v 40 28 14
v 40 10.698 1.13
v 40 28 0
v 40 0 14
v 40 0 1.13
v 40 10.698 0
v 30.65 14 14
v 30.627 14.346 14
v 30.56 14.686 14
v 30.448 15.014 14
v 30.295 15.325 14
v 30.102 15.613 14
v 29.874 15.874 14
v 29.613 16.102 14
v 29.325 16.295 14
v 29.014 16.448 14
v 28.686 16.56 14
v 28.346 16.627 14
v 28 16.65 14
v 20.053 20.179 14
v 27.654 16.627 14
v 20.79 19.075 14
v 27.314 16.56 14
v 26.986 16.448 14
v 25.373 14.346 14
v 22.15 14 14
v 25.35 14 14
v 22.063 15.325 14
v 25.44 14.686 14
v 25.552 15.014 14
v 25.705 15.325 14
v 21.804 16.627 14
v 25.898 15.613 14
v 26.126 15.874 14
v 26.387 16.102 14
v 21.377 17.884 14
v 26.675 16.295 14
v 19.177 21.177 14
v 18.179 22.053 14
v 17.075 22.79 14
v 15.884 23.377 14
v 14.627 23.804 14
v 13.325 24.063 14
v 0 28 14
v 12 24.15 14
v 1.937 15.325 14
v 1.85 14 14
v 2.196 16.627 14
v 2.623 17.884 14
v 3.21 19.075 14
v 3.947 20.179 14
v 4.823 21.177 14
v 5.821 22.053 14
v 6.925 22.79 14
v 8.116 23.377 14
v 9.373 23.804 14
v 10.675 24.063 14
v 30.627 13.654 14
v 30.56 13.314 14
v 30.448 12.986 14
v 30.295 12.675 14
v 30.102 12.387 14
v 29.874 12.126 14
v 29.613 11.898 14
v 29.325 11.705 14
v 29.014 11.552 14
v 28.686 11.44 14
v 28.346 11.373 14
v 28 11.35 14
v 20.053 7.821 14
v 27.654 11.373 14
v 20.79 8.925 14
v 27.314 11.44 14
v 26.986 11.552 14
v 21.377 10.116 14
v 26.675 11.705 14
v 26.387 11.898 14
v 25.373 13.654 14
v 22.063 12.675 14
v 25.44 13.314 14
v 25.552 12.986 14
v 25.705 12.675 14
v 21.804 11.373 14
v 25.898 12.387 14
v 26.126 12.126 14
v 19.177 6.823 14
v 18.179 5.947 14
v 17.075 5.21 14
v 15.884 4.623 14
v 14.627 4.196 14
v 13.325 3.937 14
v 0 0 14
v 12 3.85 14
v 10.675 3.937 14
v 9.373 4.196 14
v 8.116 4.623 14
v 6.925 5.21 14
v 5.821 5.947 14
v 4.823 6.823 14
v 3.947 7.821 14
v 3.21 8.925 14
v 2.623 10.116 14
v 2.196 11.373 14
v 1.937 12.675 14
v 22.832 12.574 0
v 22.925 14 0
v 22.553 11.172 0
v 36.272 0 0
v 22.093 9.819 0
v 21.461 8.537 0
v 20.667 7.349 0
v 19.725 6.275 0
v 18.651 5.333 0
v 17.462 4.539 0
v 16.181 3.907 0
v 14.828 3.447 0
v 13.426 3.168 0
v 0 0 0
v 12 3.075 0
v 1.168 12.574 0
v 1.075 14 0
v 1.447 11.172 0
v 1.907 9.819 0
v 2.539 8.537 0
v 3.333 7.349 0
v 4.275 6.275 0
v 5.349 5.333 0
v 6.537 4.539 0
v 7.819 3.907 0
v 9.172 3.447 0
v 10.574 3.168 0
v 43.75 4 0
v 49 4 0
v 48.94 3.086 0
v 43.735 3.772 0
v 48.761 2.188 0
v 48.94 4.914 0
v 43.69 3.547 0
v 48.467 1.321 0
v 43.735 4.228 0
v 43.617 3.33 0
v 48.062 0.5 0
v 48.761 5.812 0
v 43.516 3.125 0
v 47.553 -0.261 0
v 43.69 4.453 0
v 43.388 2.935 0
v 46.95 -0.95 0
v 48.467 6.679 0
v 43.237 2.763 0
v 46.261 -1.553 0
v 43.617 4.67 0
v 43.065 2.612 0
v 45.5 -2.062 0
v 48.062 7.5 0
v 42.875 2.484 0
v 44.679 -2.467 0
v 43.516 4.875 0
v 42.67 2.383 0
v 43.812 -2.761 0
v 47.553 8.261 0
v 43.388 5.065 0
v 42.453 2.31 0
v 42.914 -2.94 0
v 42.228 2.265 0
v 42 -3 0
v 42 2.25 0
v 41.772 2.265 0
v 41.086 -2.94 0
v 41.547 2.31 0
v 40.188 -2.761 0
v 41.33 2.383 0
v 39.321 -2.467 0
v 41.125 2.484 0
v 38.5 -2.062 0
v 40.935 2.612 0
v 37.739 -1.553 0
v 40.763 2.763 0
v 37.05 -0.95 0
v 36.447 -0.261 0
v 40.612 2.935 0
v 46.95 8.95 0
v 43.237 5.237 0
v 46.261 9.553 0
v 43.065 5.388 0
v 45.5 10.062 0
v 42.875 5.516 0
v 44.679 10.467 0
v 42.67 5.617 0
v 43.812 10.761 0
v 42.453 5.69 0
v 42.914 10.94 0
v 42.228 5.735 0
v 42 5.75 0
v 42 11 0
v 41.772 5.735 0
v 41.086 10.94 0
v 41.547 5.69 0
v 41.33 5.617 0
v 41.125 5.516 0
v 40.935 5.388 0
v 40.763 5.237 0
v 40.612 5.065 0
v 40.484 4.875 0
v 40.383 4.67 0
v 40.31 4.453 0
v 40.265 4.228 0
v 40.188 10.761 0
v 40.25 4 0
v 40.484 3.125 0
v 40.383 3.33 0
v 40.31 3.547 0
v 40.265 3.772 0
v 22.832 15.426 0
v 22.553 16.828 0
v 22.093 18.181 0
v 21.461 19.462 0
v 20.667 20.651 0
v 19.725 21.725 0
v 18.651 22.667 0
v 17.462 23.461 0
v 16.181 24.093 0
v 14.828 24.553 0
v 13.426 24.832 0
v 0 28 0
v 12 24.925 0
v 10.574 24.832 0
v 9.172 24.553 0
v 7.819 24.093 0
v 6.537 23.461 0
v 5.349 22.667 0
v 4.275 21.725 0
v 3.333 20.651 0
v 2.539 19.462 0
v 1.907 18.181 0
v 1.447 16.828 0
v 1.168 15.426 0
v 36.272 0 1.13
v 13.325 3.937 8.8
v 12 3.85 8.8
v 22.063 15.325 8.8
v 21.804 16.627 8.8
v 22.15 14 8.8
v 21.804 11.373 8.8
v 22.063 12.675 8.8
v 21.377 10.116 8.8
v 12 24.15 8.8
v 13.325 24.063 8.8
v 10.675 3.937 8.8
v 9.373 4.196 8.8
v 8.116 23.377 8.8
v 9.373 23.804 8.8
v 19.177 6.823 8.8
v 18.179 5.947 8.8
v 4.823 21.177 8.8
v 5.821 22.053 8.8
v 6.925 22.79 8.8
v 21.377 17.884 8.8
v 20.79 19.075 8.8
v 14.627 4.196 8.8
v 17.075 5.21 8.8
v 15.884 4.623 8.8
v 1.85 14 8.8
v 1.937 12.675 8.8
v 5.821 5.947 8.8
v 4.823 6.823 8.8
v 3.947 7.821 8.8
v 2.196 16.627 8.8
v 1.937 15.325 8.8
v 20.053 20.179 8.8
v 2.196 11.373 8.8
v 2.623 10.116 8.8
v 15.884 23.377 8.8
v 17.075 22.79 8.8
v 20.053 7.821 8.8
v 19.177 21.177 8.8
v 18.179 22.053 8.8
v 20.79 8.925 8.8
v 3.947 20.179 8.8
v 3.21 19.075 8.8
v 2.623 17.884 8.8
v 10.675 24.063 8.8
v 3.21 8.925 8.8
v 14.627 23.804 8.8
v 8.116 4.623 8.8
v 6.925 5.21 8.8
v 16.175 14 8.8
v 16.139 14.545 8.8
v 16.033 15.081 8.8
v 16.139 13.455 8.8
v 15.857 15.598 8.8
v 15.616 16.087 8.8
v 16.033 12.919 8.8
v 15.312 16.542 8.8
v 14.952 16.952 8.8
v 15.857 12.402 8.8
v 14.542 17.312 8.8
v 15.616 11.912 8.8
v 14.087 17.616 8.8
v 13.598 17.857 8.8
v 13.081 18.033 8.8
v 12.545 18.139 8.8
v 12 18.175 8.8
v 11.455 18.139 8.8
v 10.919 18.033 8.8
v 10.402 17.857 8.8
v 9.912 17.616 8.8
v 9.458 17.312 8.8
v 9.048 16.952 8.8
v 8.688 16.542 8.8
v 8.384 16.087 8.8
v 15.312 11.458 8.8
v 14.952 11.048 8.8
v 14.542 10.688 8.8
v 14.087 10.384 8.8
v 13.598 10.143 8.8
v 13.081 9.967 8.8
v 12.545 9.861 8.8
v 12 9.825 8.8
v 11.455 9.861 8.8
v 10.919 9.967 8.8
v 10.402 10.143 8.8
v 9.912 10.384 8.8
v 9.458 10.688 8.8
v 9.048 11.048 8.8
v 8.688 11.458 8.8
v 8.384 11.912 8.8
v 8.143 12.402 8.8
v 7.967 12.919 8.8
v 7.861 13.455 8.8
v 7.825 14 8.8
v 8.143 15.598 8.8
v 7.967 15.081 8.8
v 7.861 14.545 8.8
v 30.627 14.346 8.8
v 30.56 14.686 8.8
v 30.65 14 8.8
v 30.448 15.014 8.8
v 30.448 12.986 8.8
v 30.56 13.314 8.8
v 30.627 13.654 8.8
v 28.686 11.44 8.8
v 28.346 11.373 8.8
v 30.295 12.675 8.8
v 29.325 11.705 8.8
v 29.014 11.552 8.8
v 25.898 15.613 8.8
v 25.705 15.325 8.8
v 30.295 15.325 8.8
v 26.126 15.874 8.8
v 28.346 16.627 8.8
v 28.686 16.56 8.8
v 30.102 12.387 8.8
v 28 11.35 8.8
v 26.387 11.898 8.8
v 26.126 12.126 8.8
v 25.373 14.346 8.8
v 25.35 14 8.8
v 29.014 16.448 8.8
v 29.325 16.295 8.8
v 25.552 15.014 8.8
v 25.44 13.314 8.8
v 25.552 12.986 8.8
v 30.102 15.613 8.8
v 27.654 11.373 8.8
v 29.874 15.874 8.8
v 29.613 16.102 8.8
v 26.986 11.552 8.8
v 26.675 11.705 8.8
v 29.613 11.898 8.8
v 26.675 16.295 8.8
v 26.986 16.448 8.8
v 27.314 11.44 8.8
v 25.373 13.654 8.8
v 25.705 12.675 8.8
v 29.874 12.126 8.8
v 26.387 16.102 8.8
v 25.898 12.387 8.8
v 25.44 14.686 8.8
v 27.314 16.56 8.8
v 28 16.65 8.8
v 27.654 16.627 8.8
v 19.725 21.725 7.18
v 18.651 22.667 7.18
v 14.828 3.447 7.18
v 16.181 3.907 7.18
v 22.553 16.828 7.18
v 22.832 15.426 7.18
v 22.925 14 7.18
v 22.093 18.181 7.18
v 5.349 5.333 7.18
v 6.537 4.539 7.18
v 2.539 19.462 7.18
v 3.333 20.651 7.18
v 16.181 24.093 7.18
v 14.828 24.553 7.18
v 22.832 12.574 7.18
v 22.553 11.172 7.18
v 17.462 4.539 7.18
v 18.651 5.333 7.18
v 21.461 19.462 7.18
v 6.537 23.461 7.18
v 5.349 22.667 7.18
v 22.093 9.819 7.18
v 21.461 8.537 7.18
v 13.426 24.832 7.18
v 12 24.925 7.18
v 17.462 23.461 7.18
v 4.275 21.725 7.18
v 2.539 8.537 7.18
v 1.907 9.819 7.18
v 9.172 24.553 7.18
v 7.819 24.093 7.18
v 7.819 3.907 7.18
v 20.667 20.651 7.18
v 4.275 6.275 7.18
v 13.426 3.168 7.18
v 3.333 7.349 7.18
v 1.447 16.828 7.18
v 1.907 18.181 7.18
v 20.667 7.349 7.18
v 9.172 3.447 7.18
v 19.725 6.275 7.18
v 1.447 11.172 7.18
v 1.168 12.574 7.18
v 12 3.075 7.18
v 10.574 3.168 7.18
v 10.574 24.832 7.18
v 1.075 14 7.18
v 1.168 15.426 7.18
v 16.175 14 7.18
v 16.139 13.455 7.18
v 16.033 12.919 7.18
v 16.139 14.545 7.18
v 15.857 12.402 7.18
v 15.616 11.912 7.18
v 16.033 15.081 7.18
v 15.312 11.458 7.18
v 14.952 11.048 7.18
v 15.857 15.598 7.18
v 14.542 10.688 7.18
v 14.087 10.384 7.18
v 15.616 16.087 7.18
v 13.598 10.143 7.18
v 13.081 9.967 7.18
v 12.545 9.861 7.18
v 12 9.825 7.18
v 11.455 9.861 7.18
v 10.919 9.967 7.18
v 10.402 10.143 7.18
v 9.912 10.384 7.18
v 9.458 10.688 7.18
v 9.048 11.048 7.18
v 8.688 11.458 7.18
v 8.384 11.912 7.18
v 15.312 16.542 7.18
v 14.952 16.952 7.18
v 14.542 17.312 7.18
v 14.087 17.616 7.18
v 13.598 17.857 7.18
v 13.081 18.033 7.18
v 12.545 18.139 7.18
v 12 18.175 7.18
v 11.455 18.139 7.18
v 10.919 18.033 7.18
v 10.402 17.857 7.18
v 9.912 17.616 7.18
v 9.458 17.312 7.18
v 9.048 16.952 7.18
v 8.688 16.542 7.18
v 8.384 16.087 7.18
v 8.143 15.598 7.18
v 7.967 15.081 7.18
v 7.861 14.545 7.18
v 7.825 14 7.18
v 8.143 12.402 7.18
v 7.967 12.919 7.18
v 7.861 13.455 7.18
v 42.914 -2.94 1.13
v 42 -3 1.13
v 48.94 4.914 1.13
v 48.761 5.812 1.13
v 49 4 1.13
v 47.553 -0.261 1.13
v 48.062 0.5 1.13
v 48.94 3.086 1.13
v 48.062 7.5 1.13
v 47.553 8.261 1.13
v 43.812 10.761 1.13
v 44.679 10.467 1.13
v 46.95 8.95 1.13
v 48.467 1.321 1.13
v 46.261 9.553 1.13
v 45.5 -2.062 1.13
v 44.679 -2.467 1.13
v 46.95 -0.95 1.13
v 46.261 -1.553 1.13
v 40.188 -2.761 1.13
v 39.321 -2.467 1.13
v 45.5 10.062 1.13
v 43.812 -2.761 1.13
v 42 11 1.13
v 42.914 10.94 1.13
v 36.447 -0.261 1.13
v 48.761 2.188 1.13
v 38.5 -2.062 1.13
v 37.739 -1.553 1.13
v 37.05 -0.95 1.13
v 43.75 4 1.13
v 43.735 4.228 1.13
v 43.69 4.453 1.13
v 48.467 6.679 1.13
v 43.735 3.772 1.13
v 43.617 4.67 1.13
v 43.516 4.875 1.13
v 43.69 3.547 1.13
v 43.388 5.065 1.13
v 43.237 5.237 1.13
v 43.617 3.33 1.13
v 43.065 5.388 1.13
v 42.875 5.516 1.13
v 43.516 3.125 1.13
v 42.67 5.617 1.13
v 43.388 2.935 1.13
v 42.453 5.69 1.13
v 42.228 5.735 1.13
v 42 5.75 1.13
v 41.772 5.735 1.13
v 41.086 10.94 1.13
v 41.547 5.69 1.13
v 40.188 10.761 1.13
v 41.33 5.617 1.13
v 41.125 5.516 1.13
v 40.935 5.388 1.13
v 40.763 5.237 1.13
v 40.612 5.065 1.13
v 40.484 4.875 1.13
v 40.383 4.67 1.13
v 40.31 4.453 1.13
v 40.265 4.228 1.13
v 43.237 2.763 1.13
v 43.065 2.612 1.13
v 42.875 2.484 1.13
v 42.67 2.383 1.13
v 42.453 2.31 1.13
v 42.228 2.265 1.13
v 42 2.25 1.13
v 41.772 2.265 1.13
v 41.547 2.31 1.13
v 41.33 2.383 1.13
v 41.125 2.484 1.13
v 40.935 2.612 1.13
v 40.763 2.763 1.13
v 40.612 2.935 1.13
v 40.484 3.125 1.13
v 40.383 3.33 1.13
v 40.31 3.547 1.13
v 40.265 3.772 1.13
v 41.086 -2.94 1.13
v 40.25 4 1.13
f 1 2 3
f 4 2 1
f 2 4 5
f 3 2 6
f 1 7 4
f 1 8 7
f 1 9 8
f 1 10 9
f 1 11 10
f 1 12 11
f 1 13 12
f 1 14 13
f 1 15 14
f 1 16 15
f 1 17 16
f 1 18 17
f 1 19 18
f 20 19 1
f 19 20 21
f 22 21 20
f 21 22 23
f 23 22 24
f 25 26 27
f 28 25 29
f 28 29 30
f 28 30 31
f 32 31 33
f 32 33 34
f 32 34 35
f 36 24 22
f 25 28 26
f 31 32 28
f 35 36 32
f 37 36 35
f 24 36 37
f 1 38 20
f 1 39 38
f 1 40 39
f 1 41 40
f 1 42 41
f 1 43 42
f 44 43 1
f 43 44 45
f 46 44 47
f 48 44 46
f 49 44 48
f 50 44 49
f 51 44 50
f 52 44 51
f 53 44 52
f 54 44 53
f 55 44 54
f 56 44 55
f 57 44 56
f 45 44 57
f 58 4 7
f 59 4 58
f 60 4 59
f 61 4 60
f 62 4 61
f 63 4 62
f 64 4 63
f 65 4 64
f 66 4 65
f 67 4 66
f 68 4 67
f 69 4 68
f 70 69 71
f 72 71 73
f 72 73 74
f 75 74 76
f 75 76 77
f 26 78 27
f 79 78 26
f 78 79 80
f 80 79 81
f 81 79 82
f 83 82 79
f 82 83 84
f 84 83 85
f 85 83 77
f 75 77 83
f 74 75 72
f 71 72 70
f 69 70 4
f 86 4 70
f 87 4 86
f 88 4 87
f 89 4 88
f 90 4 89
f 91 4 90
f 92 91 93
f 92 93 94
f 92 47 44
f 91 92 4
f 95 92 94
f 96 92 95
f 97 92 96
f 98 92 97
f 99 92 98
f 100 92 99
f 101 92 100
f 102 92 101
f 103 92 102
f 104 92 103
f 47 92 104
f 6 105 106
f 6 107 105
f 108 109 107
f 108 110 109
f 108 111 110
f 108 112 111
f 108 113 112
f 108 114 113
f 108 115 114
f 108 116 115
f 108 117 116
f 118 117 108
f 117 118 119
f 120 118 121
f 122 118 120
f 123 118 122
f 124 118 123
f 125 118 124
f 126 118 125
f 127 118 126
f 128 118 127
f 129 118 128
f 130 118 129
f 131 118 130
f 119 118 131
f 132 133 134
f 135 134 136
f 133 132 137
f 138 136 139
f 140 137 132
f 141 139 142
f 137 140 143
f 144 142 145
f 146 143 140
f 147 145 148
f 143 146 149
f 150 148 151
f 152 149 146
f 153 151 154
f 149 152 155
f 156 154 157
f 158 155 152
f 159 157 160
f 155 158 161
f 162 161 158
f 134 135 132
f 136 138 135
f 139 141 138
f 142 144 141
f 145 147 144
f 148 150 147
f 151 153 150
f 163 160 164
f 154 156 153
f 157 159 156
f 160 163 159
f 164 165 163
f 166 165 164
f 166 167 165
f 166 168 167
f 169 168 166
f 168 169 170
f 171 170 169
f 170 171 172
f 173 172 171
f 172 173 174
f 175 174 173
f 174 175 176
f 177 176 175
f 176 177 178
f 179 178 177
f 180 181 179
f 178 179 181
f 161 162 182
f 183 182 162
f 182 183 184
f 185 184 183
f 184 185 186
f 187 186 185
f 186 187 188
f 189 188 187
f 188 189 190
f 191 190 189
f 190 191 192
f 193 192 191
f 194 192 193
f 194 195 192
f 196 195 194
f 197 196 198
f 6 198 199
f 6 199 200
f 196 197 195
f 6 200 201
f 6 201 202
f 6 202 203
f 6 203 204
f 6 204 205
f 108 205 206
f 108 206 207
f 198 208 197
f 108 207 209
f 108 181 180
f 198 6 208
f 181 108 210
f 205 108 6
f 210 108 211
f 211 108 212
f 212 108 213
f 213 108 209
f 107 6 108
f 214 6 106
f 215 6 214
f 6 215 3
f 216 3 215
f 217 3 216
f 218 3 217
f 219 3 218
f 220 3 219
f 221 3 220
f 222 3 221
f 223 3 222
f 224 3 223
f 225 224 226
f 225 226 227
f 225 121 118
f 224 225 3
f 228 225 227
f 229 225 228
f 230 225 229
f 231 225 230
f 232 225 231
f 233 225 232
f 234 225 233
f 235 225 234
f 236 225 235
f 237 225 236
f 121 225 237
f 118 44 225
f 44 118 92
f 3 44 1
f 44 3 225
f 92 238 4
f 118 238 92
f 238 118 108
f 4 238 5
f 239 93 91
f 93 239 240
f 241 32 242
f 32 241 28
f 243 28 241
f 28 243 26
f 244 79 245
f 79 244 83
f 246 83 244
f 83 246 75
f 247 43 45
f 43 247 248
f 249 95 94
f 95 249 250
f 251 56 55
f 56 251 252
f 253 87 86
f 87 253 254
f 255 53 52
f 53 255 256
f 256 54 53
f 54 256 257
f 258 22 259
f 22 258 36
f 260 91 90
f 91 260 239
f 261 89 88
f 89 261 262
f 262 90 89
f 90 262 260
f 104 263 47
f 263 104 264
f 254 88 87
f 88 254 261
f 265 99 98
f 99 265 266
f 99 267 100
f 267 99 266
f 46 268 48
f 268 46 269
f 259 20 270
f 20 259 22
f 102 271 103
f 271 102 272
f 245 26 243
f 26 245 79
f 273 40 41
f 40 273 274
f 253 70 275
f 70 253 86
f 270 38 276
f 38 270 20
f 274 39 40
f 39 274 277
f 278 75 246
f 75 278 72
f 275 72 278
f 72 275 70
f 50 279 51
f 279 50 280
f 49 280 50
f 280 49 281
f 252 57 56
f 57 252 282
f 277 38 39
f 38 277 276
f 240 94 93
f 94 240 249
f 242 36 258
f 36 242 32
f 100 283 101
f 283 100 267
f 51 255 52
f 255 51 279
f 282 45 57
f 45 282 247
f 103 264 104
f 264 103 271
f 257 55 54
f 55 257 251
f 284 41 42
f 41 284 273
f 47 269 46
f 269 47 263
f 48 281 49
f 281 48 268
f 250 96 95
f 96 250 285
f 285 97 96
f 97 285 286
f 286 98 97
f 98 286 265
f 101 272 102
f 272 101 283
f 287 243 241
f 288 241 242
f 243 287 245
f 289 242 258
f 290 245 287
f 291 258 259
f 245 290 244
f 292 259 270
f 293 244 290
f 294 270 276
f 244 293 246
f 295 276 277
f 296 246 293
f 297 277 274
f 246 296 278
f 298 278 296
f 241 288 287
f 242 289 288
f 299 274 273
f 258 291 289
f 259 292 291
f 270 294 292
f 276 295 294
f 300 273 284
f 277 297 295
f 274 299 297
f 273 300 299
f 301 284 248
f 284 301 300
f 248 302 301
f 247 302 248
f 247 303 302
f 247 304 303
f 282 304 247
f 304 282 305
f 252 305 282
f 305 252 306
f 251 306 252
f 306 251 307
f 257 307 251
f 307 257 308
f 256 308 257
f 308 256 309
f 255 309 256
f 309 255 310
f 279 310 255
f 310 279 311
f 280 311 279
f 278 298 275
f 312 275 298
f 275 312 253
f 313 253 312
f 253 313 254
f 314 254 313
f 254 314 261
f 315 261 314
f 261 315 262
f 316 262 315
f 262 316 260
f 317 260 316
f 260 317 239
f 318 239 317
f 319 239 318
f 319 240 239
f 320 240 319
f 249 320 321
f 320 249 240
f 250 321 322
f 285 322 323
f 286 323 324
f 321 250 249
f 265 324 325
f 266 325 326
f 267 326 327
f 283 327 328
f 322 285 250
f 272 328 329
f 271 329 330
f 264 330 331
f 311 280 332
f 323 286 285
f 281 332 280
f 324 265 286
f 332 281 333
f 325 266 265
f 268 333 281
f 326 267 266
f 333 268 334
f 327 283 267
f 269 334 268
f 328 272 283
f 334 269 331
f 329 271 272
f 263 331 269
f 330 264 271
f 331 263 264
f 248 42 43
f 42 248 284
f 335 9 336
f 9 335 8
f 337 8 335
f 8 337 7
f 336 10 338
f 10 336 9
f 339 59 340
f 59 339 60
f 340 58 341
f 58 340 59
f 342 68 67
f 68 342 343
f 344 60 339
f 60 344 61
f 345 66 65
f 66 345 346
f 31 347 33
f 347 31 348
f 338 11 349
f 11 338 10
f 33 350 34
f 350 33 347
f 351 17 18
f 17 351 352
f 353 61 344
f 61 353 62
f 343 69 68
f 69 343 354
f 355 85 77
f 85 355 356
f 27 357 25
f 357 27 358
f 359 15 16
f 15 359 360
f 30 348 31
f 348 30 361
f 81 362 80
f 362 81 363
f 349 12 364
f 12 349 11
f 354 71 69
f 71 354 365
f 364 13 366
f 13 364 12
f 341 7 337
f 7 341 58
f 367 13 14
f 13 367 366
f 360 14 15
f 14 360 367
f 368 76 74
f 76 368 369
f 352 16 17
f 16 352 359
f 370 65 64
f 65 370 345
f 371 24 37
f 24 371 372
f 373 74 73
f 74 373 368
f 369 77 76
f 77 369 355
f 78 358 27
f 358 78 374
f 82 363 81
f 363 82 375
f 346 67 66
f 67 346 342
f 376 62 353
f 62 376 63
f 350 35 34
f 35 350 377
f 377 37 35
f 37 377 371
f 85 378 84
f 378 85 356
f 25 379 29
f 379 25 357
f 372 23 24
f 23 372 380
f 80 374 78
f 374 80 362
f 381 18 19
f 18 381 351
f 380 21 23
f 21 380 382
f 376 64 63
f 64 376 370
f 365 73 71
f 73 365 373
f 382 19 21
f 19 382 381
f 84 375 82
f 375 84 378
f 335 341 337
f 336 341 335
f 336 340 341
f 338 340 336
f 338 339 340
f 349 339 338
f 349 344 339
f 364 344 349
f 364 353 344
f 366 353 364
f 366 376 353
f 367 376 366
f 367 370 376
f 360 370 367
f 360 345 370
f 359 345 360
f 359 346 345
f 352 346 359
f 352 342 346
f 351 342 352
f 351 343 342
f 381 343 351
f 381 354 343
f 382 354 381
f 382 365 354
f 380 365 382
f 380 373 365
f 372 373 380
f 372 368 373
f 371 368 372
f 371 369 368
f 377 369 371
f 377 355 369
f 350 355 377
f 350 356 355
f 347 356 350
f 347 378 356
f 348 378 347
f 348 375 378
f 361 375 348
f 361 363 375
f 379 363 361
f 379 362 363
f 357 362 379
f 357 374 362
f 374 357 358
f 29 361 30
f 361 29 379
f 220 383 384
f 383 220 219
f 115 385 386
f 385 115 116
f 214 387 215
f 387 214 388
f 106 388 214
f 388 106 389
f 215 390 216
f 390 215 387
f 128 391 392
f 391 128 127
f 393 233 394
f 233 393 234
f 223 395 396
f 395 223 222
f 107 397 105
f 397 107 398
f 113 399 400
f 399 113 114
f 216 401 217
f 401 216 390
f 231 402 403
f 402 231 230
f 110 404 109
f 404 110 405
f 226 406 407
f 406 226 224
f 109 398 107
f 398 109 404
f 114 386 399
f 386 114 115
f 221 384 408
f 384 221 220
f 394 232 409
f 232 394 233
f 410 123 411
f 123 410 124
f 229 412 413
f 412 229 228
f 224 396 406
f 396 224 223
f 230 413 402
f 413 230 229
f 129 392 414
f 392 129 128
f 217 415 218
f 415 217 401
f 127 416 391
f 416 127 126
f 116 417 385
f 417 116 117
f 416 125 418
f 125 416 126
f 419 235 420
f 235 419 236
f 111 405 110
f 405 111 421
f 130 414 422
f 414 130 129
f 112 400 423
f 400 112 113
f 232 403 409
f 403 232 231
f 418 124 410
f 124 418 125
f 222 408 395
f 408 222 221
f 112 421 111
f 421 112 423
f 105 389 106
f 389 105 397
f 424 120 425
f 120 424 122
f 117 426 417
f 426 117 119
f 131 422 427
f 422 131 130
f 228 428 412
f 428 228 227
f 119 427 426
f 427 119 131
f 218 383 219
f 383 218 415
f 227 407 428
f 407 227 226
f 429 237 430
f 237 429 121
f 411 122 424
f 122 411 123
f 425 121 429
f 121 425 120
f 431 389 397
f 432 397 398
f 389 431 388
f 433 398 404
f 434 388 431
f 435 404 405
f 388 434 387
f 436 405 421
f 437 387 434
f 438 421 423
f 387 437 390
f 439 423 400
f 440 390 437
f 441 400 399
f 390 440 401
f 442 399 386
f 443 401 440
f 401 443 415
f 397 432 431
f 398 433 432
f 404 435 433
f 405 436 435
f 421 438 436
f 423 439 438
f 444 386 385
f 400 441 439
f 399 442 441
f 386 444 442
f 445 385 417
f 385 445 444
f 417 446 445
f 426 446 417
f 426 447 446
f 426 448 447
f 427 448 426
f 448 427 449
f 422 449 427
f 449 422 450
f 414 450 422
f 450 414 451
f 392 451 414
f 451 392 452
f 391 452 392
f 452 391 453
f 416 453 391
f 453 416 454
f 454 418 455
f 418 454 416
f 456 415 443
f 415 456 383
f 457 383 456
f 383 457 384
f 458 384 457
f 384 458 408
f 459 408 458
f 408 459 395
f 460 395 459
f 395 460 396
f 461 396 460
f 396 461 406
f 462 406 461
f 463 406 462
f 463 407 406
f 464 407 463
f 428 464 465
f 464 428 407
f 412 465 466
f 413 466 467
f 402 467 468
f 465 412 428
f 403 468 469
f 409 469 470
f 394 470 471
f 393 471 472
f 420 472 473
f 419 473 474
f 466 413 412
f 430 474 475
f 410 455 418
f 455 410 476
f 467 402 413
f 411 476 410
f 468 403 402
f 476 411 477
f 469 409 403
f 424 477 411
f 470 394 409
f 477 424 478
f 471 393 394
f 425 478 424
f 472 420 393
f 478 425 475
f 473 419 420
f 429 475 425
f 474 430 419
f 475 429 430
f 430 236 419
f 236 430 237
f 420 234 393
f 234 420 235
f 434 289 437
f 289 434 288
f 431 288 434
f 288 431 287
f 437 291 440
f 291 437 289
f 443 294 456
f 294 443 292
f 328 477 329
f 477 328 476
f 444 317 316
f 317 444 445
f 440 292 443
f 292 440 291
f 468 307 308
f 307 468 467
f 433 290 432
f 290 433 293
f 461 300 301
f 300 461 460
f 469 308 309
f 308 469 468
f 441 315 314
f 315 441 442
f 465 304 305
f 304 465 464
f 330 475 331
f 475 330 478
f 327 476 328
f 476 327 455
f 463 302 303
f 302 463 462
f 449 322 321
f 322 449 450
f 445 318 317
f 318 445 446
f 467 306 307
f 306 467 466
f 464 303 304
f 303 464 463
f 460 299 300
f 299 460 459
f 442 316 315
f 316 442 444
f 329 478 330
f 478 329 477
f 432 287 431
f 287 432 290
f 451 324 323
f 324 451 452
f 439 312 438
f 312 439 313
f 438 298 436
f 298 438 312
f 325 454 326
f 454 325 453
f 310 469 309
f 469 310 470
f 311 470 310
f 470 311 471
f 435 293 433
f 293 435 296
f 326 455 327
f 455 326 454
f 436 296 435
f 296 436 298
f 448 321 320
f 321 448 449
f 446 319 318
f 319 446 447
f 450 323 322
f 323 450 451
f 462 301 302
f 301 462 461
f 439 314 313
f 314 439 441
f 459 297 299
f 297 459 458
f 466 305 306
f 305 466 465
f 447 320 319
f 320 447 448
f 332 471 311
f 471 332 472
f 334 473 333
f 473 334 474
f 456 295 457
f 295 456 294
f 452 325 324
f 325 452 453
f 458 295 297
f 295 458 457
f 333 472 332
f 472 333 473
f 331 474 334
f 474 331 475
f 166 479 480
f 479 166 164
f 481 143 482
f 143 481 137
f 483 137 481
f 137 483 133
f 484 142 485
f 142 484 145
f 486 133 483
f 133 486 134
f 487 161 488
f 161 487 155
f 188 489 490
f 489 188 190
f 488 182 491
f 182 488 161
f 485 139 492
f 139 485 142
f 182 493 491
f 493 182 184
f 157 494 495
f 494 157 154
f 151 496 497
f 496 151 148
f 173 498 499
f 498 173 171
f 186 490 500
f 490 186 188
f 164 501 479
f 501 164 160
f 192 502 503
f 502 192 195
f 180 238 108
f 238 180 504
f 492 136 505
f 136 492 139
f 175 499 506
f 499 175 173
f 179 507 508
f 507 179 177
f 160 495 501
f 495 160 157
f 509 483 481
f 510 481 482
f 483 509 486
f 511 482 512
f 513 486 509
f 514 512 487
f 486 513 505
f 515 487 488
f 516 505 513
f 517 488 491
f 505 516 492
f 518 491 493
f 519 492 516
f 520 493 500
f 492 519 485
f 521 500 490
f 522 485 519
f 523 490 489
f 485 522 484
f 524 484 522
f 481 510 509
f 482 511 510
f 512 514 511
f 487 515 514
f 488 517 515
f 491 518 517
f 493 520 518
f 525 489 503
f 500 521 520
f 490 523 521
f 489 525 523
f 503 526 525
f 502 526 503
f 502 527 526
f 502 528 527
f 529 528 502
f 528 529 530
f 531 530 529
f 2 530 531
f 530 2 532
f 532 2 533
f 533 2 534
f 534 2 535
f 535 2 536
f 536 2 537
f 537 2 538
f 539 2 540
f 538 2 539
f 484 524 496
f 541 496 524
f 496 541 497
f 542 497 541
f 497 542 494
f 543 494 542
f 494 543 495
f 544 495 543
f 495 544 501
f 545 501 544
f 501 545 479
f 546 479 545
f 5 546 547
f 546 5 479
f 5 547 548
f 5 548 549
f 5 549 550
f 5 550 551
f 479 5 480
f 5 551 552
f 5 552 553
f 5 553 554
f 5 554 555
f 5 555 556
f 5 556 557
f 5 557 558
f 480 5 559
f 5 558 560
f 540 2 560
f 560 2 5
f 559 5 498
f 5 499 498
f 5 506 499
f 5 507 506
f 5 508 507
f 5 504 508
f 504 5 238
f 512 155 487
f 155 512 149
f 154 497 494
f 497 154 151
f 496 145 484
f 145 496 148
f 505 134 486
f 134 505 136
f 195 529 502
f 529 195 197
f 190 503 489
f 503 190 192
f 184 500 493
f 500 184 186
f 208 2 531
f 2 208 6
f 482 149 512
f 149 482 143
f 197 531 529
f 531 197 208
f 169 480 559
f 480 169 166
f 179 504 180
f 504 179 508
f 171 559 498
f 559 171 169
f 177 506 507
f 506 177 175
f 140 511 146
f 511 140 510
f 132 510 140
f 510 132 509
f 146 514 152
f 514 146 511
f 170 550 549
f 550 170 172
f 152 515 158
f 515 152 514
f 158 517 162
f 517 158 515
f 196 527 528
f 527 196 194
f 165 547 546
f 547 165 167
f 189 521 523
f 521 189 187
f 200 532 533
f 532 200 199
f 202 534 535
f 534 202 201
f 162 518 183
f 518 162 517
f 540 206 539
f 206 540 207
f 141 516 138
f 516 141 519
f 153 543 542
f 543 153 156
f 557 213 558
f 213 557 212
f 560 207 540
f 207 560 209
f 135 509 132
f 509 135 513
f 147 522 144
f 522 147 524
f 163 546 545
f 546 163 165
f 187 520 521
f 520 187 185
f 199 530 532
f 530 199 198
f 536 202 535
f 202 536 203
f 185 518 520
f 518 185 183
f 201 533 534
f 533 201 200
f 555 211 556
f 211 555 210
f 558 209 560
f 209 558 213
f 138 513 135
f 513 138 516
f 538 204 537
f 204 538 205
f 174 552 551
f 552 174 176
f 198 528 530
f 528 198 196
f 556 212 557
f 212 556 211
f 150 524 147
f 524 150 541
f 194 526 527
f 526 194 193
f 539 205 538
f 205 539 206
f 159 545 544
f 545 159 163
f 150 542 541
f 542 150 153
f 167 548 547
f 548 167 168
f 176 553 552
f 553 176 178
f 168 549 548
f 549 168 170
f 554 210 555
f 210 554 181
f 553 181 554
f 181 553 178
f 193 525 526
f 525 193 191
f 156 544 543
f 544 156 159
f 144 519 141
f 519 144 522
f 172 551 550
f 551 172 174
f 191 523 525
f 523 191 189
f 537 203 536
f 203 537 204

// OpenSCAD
// file: parameters.scad
// =============================================================================
// Gen-AH Dual-rotor copper-centroid hypermicro AFPM — WOUND-AWARE (HARD GATE)
// PRIMARY challenger vs Gen-AE. Magnets @ R=41 over copper centroid + 180 t + m2m 4.96.
// =============================================================================

// --- Wire / wind budget (26 AWG, ~1 lb spool ≈ 390 m bare-equiv) --------------
wire_awg            = 26;
wire_od             = 0.45;     // insulated OD mm
turns               = 180;      // +10 vs Gen-AE 170
fill                = 0.70;
layers_per_face     = 2;        // axial layers proud of EACH flange
wind_build_axial    = layers_per_face * wire_od * fill;   // 0.63 mm
wind_build_radial   = 3 * wire_od * fill;                 // 0.945 mm

// --- Pancake former (bare STL) -----------------------------------------------
coil_id_r           = 16.5;     // copper-centroid window vs AE 18.5–64
coil_od_r           = 66.0;
span_deg            = 26.0;     // 12 stations × 30° pitch
former_web          = 1.50;
flange_t            = 0.60;
wall                = 1.2;
slot_w              = 2.4;
mount_hole          = 3.5;
tab_len             = 7.0;

former_bare_h       = former_web + 2 * flange_t;            // 2.70 mm
coil_envelope_h     = former_bare_h + 2 * wind_build_axial; // 3.96 mm

// --- Running clearance (magnet face → WOUND face) EACH side ------------------
run_clear           = 0.50;     // PASS floor ≥ 0.5
gap_spacer_h        = run_clear + wind_build_axial;         // 1.13 mm
m2m                 = coil_envelope_h + 2 * run_clear;      // 4.96 mm (beats Gen-AE 5.00)

// --- Mid stator (12 pancakes 3φ; winds proud both faces) ---------------------
coil_stations       = 12;
bay_r_in            = coil_id_r - 2.0 - wind_build_radial;
bay_r_out           = coil_od_r + 2.0 + wind_build_radial;
bay_span            = span_deg + 4.0;
bay_offset          = 2.0;
stator_thick        = former_bare_h;                        // winds proud ±Z
stator_od           = 160.0;
shaft_clear_stator  = 34.0;
coil_mount_r        = 26.0;

// --- Rotors (×2) — 8×Ø20 @ R=41 (copper centroid) + 24×Ø5 Halbach ------------
large_pocket_d      = 20.3;
small_pocket_d      = 5.3;
pocket_h            = 5.2;
large_n             = 8;
R_large             = 41.0;     // covers ~31–51 over copper centroid ~41
R_small_inner       = 26.0;
R_small_mid         = 41.0;
R_small_outer       = 58.0;
carrier_od          = 156.0;
carrier_thick       = 7.5;
hub_h               = 10.0;
hub_od              = 30.0;
rotor_b_offset_deg  = 22.5;

// --- Modular MAX interface (Gen-E family) ------------------------------------
shaft_bore          = 8.35;
bearing_d           = 21.85;
bearing_h           = 7.2;
m3_clear            = 3.5;
bolt_r_inner        = 36.0;
bolt_n_inner        = 6;
flange_bolt_r       = 72.0;
flange_bolt_n       = 6;
brace_r             = 68.0;
brace_d             = 4.3;
brace_n             = 4;

spacer_pad_od       = 14.0;
spacer_pad_id       = m3_clear;
endbell_od          = 160.0;
endbell_thick       = 8.0;
endbell_shaft_clear = 10.0;

$fn = 64;
// main file
// Gen-AH fit coupon — magnet pockets + 608 + spacer height
include <parameters.scad>;
$fn = 48;
block_w = 40; block_d = 28; block_h = 14;
difference() {
    cube([block_w, block_d, block_h]);
    translate([12, block_d/2, block_h - pocket_h])
        cylinder(d=large_pocket_d, h=pocket_h + 0.2);
    translate([28, block_d/2, block_h - pocket_h])
        cylinder(d=small_pocket_d, h=pocket_h + 0.2);
    translate([12, block_d/2, -0.02])
        cylinder(d=bearing_d, h=bearing_h);
    translate([12, block_d/2, -0.1])
        cylinder(d=shaft_bore, h=block_h + 1);
}
translate([block_w + 2, 4, 0])
    difference() {
        cylinder(d=spacer_pad_od, h=gap_spacer_h);
        translate([0, 0, -0.1]) cylinder(d=spacer_pad_id, h=gap_spacer_h + 0.2);
    }
